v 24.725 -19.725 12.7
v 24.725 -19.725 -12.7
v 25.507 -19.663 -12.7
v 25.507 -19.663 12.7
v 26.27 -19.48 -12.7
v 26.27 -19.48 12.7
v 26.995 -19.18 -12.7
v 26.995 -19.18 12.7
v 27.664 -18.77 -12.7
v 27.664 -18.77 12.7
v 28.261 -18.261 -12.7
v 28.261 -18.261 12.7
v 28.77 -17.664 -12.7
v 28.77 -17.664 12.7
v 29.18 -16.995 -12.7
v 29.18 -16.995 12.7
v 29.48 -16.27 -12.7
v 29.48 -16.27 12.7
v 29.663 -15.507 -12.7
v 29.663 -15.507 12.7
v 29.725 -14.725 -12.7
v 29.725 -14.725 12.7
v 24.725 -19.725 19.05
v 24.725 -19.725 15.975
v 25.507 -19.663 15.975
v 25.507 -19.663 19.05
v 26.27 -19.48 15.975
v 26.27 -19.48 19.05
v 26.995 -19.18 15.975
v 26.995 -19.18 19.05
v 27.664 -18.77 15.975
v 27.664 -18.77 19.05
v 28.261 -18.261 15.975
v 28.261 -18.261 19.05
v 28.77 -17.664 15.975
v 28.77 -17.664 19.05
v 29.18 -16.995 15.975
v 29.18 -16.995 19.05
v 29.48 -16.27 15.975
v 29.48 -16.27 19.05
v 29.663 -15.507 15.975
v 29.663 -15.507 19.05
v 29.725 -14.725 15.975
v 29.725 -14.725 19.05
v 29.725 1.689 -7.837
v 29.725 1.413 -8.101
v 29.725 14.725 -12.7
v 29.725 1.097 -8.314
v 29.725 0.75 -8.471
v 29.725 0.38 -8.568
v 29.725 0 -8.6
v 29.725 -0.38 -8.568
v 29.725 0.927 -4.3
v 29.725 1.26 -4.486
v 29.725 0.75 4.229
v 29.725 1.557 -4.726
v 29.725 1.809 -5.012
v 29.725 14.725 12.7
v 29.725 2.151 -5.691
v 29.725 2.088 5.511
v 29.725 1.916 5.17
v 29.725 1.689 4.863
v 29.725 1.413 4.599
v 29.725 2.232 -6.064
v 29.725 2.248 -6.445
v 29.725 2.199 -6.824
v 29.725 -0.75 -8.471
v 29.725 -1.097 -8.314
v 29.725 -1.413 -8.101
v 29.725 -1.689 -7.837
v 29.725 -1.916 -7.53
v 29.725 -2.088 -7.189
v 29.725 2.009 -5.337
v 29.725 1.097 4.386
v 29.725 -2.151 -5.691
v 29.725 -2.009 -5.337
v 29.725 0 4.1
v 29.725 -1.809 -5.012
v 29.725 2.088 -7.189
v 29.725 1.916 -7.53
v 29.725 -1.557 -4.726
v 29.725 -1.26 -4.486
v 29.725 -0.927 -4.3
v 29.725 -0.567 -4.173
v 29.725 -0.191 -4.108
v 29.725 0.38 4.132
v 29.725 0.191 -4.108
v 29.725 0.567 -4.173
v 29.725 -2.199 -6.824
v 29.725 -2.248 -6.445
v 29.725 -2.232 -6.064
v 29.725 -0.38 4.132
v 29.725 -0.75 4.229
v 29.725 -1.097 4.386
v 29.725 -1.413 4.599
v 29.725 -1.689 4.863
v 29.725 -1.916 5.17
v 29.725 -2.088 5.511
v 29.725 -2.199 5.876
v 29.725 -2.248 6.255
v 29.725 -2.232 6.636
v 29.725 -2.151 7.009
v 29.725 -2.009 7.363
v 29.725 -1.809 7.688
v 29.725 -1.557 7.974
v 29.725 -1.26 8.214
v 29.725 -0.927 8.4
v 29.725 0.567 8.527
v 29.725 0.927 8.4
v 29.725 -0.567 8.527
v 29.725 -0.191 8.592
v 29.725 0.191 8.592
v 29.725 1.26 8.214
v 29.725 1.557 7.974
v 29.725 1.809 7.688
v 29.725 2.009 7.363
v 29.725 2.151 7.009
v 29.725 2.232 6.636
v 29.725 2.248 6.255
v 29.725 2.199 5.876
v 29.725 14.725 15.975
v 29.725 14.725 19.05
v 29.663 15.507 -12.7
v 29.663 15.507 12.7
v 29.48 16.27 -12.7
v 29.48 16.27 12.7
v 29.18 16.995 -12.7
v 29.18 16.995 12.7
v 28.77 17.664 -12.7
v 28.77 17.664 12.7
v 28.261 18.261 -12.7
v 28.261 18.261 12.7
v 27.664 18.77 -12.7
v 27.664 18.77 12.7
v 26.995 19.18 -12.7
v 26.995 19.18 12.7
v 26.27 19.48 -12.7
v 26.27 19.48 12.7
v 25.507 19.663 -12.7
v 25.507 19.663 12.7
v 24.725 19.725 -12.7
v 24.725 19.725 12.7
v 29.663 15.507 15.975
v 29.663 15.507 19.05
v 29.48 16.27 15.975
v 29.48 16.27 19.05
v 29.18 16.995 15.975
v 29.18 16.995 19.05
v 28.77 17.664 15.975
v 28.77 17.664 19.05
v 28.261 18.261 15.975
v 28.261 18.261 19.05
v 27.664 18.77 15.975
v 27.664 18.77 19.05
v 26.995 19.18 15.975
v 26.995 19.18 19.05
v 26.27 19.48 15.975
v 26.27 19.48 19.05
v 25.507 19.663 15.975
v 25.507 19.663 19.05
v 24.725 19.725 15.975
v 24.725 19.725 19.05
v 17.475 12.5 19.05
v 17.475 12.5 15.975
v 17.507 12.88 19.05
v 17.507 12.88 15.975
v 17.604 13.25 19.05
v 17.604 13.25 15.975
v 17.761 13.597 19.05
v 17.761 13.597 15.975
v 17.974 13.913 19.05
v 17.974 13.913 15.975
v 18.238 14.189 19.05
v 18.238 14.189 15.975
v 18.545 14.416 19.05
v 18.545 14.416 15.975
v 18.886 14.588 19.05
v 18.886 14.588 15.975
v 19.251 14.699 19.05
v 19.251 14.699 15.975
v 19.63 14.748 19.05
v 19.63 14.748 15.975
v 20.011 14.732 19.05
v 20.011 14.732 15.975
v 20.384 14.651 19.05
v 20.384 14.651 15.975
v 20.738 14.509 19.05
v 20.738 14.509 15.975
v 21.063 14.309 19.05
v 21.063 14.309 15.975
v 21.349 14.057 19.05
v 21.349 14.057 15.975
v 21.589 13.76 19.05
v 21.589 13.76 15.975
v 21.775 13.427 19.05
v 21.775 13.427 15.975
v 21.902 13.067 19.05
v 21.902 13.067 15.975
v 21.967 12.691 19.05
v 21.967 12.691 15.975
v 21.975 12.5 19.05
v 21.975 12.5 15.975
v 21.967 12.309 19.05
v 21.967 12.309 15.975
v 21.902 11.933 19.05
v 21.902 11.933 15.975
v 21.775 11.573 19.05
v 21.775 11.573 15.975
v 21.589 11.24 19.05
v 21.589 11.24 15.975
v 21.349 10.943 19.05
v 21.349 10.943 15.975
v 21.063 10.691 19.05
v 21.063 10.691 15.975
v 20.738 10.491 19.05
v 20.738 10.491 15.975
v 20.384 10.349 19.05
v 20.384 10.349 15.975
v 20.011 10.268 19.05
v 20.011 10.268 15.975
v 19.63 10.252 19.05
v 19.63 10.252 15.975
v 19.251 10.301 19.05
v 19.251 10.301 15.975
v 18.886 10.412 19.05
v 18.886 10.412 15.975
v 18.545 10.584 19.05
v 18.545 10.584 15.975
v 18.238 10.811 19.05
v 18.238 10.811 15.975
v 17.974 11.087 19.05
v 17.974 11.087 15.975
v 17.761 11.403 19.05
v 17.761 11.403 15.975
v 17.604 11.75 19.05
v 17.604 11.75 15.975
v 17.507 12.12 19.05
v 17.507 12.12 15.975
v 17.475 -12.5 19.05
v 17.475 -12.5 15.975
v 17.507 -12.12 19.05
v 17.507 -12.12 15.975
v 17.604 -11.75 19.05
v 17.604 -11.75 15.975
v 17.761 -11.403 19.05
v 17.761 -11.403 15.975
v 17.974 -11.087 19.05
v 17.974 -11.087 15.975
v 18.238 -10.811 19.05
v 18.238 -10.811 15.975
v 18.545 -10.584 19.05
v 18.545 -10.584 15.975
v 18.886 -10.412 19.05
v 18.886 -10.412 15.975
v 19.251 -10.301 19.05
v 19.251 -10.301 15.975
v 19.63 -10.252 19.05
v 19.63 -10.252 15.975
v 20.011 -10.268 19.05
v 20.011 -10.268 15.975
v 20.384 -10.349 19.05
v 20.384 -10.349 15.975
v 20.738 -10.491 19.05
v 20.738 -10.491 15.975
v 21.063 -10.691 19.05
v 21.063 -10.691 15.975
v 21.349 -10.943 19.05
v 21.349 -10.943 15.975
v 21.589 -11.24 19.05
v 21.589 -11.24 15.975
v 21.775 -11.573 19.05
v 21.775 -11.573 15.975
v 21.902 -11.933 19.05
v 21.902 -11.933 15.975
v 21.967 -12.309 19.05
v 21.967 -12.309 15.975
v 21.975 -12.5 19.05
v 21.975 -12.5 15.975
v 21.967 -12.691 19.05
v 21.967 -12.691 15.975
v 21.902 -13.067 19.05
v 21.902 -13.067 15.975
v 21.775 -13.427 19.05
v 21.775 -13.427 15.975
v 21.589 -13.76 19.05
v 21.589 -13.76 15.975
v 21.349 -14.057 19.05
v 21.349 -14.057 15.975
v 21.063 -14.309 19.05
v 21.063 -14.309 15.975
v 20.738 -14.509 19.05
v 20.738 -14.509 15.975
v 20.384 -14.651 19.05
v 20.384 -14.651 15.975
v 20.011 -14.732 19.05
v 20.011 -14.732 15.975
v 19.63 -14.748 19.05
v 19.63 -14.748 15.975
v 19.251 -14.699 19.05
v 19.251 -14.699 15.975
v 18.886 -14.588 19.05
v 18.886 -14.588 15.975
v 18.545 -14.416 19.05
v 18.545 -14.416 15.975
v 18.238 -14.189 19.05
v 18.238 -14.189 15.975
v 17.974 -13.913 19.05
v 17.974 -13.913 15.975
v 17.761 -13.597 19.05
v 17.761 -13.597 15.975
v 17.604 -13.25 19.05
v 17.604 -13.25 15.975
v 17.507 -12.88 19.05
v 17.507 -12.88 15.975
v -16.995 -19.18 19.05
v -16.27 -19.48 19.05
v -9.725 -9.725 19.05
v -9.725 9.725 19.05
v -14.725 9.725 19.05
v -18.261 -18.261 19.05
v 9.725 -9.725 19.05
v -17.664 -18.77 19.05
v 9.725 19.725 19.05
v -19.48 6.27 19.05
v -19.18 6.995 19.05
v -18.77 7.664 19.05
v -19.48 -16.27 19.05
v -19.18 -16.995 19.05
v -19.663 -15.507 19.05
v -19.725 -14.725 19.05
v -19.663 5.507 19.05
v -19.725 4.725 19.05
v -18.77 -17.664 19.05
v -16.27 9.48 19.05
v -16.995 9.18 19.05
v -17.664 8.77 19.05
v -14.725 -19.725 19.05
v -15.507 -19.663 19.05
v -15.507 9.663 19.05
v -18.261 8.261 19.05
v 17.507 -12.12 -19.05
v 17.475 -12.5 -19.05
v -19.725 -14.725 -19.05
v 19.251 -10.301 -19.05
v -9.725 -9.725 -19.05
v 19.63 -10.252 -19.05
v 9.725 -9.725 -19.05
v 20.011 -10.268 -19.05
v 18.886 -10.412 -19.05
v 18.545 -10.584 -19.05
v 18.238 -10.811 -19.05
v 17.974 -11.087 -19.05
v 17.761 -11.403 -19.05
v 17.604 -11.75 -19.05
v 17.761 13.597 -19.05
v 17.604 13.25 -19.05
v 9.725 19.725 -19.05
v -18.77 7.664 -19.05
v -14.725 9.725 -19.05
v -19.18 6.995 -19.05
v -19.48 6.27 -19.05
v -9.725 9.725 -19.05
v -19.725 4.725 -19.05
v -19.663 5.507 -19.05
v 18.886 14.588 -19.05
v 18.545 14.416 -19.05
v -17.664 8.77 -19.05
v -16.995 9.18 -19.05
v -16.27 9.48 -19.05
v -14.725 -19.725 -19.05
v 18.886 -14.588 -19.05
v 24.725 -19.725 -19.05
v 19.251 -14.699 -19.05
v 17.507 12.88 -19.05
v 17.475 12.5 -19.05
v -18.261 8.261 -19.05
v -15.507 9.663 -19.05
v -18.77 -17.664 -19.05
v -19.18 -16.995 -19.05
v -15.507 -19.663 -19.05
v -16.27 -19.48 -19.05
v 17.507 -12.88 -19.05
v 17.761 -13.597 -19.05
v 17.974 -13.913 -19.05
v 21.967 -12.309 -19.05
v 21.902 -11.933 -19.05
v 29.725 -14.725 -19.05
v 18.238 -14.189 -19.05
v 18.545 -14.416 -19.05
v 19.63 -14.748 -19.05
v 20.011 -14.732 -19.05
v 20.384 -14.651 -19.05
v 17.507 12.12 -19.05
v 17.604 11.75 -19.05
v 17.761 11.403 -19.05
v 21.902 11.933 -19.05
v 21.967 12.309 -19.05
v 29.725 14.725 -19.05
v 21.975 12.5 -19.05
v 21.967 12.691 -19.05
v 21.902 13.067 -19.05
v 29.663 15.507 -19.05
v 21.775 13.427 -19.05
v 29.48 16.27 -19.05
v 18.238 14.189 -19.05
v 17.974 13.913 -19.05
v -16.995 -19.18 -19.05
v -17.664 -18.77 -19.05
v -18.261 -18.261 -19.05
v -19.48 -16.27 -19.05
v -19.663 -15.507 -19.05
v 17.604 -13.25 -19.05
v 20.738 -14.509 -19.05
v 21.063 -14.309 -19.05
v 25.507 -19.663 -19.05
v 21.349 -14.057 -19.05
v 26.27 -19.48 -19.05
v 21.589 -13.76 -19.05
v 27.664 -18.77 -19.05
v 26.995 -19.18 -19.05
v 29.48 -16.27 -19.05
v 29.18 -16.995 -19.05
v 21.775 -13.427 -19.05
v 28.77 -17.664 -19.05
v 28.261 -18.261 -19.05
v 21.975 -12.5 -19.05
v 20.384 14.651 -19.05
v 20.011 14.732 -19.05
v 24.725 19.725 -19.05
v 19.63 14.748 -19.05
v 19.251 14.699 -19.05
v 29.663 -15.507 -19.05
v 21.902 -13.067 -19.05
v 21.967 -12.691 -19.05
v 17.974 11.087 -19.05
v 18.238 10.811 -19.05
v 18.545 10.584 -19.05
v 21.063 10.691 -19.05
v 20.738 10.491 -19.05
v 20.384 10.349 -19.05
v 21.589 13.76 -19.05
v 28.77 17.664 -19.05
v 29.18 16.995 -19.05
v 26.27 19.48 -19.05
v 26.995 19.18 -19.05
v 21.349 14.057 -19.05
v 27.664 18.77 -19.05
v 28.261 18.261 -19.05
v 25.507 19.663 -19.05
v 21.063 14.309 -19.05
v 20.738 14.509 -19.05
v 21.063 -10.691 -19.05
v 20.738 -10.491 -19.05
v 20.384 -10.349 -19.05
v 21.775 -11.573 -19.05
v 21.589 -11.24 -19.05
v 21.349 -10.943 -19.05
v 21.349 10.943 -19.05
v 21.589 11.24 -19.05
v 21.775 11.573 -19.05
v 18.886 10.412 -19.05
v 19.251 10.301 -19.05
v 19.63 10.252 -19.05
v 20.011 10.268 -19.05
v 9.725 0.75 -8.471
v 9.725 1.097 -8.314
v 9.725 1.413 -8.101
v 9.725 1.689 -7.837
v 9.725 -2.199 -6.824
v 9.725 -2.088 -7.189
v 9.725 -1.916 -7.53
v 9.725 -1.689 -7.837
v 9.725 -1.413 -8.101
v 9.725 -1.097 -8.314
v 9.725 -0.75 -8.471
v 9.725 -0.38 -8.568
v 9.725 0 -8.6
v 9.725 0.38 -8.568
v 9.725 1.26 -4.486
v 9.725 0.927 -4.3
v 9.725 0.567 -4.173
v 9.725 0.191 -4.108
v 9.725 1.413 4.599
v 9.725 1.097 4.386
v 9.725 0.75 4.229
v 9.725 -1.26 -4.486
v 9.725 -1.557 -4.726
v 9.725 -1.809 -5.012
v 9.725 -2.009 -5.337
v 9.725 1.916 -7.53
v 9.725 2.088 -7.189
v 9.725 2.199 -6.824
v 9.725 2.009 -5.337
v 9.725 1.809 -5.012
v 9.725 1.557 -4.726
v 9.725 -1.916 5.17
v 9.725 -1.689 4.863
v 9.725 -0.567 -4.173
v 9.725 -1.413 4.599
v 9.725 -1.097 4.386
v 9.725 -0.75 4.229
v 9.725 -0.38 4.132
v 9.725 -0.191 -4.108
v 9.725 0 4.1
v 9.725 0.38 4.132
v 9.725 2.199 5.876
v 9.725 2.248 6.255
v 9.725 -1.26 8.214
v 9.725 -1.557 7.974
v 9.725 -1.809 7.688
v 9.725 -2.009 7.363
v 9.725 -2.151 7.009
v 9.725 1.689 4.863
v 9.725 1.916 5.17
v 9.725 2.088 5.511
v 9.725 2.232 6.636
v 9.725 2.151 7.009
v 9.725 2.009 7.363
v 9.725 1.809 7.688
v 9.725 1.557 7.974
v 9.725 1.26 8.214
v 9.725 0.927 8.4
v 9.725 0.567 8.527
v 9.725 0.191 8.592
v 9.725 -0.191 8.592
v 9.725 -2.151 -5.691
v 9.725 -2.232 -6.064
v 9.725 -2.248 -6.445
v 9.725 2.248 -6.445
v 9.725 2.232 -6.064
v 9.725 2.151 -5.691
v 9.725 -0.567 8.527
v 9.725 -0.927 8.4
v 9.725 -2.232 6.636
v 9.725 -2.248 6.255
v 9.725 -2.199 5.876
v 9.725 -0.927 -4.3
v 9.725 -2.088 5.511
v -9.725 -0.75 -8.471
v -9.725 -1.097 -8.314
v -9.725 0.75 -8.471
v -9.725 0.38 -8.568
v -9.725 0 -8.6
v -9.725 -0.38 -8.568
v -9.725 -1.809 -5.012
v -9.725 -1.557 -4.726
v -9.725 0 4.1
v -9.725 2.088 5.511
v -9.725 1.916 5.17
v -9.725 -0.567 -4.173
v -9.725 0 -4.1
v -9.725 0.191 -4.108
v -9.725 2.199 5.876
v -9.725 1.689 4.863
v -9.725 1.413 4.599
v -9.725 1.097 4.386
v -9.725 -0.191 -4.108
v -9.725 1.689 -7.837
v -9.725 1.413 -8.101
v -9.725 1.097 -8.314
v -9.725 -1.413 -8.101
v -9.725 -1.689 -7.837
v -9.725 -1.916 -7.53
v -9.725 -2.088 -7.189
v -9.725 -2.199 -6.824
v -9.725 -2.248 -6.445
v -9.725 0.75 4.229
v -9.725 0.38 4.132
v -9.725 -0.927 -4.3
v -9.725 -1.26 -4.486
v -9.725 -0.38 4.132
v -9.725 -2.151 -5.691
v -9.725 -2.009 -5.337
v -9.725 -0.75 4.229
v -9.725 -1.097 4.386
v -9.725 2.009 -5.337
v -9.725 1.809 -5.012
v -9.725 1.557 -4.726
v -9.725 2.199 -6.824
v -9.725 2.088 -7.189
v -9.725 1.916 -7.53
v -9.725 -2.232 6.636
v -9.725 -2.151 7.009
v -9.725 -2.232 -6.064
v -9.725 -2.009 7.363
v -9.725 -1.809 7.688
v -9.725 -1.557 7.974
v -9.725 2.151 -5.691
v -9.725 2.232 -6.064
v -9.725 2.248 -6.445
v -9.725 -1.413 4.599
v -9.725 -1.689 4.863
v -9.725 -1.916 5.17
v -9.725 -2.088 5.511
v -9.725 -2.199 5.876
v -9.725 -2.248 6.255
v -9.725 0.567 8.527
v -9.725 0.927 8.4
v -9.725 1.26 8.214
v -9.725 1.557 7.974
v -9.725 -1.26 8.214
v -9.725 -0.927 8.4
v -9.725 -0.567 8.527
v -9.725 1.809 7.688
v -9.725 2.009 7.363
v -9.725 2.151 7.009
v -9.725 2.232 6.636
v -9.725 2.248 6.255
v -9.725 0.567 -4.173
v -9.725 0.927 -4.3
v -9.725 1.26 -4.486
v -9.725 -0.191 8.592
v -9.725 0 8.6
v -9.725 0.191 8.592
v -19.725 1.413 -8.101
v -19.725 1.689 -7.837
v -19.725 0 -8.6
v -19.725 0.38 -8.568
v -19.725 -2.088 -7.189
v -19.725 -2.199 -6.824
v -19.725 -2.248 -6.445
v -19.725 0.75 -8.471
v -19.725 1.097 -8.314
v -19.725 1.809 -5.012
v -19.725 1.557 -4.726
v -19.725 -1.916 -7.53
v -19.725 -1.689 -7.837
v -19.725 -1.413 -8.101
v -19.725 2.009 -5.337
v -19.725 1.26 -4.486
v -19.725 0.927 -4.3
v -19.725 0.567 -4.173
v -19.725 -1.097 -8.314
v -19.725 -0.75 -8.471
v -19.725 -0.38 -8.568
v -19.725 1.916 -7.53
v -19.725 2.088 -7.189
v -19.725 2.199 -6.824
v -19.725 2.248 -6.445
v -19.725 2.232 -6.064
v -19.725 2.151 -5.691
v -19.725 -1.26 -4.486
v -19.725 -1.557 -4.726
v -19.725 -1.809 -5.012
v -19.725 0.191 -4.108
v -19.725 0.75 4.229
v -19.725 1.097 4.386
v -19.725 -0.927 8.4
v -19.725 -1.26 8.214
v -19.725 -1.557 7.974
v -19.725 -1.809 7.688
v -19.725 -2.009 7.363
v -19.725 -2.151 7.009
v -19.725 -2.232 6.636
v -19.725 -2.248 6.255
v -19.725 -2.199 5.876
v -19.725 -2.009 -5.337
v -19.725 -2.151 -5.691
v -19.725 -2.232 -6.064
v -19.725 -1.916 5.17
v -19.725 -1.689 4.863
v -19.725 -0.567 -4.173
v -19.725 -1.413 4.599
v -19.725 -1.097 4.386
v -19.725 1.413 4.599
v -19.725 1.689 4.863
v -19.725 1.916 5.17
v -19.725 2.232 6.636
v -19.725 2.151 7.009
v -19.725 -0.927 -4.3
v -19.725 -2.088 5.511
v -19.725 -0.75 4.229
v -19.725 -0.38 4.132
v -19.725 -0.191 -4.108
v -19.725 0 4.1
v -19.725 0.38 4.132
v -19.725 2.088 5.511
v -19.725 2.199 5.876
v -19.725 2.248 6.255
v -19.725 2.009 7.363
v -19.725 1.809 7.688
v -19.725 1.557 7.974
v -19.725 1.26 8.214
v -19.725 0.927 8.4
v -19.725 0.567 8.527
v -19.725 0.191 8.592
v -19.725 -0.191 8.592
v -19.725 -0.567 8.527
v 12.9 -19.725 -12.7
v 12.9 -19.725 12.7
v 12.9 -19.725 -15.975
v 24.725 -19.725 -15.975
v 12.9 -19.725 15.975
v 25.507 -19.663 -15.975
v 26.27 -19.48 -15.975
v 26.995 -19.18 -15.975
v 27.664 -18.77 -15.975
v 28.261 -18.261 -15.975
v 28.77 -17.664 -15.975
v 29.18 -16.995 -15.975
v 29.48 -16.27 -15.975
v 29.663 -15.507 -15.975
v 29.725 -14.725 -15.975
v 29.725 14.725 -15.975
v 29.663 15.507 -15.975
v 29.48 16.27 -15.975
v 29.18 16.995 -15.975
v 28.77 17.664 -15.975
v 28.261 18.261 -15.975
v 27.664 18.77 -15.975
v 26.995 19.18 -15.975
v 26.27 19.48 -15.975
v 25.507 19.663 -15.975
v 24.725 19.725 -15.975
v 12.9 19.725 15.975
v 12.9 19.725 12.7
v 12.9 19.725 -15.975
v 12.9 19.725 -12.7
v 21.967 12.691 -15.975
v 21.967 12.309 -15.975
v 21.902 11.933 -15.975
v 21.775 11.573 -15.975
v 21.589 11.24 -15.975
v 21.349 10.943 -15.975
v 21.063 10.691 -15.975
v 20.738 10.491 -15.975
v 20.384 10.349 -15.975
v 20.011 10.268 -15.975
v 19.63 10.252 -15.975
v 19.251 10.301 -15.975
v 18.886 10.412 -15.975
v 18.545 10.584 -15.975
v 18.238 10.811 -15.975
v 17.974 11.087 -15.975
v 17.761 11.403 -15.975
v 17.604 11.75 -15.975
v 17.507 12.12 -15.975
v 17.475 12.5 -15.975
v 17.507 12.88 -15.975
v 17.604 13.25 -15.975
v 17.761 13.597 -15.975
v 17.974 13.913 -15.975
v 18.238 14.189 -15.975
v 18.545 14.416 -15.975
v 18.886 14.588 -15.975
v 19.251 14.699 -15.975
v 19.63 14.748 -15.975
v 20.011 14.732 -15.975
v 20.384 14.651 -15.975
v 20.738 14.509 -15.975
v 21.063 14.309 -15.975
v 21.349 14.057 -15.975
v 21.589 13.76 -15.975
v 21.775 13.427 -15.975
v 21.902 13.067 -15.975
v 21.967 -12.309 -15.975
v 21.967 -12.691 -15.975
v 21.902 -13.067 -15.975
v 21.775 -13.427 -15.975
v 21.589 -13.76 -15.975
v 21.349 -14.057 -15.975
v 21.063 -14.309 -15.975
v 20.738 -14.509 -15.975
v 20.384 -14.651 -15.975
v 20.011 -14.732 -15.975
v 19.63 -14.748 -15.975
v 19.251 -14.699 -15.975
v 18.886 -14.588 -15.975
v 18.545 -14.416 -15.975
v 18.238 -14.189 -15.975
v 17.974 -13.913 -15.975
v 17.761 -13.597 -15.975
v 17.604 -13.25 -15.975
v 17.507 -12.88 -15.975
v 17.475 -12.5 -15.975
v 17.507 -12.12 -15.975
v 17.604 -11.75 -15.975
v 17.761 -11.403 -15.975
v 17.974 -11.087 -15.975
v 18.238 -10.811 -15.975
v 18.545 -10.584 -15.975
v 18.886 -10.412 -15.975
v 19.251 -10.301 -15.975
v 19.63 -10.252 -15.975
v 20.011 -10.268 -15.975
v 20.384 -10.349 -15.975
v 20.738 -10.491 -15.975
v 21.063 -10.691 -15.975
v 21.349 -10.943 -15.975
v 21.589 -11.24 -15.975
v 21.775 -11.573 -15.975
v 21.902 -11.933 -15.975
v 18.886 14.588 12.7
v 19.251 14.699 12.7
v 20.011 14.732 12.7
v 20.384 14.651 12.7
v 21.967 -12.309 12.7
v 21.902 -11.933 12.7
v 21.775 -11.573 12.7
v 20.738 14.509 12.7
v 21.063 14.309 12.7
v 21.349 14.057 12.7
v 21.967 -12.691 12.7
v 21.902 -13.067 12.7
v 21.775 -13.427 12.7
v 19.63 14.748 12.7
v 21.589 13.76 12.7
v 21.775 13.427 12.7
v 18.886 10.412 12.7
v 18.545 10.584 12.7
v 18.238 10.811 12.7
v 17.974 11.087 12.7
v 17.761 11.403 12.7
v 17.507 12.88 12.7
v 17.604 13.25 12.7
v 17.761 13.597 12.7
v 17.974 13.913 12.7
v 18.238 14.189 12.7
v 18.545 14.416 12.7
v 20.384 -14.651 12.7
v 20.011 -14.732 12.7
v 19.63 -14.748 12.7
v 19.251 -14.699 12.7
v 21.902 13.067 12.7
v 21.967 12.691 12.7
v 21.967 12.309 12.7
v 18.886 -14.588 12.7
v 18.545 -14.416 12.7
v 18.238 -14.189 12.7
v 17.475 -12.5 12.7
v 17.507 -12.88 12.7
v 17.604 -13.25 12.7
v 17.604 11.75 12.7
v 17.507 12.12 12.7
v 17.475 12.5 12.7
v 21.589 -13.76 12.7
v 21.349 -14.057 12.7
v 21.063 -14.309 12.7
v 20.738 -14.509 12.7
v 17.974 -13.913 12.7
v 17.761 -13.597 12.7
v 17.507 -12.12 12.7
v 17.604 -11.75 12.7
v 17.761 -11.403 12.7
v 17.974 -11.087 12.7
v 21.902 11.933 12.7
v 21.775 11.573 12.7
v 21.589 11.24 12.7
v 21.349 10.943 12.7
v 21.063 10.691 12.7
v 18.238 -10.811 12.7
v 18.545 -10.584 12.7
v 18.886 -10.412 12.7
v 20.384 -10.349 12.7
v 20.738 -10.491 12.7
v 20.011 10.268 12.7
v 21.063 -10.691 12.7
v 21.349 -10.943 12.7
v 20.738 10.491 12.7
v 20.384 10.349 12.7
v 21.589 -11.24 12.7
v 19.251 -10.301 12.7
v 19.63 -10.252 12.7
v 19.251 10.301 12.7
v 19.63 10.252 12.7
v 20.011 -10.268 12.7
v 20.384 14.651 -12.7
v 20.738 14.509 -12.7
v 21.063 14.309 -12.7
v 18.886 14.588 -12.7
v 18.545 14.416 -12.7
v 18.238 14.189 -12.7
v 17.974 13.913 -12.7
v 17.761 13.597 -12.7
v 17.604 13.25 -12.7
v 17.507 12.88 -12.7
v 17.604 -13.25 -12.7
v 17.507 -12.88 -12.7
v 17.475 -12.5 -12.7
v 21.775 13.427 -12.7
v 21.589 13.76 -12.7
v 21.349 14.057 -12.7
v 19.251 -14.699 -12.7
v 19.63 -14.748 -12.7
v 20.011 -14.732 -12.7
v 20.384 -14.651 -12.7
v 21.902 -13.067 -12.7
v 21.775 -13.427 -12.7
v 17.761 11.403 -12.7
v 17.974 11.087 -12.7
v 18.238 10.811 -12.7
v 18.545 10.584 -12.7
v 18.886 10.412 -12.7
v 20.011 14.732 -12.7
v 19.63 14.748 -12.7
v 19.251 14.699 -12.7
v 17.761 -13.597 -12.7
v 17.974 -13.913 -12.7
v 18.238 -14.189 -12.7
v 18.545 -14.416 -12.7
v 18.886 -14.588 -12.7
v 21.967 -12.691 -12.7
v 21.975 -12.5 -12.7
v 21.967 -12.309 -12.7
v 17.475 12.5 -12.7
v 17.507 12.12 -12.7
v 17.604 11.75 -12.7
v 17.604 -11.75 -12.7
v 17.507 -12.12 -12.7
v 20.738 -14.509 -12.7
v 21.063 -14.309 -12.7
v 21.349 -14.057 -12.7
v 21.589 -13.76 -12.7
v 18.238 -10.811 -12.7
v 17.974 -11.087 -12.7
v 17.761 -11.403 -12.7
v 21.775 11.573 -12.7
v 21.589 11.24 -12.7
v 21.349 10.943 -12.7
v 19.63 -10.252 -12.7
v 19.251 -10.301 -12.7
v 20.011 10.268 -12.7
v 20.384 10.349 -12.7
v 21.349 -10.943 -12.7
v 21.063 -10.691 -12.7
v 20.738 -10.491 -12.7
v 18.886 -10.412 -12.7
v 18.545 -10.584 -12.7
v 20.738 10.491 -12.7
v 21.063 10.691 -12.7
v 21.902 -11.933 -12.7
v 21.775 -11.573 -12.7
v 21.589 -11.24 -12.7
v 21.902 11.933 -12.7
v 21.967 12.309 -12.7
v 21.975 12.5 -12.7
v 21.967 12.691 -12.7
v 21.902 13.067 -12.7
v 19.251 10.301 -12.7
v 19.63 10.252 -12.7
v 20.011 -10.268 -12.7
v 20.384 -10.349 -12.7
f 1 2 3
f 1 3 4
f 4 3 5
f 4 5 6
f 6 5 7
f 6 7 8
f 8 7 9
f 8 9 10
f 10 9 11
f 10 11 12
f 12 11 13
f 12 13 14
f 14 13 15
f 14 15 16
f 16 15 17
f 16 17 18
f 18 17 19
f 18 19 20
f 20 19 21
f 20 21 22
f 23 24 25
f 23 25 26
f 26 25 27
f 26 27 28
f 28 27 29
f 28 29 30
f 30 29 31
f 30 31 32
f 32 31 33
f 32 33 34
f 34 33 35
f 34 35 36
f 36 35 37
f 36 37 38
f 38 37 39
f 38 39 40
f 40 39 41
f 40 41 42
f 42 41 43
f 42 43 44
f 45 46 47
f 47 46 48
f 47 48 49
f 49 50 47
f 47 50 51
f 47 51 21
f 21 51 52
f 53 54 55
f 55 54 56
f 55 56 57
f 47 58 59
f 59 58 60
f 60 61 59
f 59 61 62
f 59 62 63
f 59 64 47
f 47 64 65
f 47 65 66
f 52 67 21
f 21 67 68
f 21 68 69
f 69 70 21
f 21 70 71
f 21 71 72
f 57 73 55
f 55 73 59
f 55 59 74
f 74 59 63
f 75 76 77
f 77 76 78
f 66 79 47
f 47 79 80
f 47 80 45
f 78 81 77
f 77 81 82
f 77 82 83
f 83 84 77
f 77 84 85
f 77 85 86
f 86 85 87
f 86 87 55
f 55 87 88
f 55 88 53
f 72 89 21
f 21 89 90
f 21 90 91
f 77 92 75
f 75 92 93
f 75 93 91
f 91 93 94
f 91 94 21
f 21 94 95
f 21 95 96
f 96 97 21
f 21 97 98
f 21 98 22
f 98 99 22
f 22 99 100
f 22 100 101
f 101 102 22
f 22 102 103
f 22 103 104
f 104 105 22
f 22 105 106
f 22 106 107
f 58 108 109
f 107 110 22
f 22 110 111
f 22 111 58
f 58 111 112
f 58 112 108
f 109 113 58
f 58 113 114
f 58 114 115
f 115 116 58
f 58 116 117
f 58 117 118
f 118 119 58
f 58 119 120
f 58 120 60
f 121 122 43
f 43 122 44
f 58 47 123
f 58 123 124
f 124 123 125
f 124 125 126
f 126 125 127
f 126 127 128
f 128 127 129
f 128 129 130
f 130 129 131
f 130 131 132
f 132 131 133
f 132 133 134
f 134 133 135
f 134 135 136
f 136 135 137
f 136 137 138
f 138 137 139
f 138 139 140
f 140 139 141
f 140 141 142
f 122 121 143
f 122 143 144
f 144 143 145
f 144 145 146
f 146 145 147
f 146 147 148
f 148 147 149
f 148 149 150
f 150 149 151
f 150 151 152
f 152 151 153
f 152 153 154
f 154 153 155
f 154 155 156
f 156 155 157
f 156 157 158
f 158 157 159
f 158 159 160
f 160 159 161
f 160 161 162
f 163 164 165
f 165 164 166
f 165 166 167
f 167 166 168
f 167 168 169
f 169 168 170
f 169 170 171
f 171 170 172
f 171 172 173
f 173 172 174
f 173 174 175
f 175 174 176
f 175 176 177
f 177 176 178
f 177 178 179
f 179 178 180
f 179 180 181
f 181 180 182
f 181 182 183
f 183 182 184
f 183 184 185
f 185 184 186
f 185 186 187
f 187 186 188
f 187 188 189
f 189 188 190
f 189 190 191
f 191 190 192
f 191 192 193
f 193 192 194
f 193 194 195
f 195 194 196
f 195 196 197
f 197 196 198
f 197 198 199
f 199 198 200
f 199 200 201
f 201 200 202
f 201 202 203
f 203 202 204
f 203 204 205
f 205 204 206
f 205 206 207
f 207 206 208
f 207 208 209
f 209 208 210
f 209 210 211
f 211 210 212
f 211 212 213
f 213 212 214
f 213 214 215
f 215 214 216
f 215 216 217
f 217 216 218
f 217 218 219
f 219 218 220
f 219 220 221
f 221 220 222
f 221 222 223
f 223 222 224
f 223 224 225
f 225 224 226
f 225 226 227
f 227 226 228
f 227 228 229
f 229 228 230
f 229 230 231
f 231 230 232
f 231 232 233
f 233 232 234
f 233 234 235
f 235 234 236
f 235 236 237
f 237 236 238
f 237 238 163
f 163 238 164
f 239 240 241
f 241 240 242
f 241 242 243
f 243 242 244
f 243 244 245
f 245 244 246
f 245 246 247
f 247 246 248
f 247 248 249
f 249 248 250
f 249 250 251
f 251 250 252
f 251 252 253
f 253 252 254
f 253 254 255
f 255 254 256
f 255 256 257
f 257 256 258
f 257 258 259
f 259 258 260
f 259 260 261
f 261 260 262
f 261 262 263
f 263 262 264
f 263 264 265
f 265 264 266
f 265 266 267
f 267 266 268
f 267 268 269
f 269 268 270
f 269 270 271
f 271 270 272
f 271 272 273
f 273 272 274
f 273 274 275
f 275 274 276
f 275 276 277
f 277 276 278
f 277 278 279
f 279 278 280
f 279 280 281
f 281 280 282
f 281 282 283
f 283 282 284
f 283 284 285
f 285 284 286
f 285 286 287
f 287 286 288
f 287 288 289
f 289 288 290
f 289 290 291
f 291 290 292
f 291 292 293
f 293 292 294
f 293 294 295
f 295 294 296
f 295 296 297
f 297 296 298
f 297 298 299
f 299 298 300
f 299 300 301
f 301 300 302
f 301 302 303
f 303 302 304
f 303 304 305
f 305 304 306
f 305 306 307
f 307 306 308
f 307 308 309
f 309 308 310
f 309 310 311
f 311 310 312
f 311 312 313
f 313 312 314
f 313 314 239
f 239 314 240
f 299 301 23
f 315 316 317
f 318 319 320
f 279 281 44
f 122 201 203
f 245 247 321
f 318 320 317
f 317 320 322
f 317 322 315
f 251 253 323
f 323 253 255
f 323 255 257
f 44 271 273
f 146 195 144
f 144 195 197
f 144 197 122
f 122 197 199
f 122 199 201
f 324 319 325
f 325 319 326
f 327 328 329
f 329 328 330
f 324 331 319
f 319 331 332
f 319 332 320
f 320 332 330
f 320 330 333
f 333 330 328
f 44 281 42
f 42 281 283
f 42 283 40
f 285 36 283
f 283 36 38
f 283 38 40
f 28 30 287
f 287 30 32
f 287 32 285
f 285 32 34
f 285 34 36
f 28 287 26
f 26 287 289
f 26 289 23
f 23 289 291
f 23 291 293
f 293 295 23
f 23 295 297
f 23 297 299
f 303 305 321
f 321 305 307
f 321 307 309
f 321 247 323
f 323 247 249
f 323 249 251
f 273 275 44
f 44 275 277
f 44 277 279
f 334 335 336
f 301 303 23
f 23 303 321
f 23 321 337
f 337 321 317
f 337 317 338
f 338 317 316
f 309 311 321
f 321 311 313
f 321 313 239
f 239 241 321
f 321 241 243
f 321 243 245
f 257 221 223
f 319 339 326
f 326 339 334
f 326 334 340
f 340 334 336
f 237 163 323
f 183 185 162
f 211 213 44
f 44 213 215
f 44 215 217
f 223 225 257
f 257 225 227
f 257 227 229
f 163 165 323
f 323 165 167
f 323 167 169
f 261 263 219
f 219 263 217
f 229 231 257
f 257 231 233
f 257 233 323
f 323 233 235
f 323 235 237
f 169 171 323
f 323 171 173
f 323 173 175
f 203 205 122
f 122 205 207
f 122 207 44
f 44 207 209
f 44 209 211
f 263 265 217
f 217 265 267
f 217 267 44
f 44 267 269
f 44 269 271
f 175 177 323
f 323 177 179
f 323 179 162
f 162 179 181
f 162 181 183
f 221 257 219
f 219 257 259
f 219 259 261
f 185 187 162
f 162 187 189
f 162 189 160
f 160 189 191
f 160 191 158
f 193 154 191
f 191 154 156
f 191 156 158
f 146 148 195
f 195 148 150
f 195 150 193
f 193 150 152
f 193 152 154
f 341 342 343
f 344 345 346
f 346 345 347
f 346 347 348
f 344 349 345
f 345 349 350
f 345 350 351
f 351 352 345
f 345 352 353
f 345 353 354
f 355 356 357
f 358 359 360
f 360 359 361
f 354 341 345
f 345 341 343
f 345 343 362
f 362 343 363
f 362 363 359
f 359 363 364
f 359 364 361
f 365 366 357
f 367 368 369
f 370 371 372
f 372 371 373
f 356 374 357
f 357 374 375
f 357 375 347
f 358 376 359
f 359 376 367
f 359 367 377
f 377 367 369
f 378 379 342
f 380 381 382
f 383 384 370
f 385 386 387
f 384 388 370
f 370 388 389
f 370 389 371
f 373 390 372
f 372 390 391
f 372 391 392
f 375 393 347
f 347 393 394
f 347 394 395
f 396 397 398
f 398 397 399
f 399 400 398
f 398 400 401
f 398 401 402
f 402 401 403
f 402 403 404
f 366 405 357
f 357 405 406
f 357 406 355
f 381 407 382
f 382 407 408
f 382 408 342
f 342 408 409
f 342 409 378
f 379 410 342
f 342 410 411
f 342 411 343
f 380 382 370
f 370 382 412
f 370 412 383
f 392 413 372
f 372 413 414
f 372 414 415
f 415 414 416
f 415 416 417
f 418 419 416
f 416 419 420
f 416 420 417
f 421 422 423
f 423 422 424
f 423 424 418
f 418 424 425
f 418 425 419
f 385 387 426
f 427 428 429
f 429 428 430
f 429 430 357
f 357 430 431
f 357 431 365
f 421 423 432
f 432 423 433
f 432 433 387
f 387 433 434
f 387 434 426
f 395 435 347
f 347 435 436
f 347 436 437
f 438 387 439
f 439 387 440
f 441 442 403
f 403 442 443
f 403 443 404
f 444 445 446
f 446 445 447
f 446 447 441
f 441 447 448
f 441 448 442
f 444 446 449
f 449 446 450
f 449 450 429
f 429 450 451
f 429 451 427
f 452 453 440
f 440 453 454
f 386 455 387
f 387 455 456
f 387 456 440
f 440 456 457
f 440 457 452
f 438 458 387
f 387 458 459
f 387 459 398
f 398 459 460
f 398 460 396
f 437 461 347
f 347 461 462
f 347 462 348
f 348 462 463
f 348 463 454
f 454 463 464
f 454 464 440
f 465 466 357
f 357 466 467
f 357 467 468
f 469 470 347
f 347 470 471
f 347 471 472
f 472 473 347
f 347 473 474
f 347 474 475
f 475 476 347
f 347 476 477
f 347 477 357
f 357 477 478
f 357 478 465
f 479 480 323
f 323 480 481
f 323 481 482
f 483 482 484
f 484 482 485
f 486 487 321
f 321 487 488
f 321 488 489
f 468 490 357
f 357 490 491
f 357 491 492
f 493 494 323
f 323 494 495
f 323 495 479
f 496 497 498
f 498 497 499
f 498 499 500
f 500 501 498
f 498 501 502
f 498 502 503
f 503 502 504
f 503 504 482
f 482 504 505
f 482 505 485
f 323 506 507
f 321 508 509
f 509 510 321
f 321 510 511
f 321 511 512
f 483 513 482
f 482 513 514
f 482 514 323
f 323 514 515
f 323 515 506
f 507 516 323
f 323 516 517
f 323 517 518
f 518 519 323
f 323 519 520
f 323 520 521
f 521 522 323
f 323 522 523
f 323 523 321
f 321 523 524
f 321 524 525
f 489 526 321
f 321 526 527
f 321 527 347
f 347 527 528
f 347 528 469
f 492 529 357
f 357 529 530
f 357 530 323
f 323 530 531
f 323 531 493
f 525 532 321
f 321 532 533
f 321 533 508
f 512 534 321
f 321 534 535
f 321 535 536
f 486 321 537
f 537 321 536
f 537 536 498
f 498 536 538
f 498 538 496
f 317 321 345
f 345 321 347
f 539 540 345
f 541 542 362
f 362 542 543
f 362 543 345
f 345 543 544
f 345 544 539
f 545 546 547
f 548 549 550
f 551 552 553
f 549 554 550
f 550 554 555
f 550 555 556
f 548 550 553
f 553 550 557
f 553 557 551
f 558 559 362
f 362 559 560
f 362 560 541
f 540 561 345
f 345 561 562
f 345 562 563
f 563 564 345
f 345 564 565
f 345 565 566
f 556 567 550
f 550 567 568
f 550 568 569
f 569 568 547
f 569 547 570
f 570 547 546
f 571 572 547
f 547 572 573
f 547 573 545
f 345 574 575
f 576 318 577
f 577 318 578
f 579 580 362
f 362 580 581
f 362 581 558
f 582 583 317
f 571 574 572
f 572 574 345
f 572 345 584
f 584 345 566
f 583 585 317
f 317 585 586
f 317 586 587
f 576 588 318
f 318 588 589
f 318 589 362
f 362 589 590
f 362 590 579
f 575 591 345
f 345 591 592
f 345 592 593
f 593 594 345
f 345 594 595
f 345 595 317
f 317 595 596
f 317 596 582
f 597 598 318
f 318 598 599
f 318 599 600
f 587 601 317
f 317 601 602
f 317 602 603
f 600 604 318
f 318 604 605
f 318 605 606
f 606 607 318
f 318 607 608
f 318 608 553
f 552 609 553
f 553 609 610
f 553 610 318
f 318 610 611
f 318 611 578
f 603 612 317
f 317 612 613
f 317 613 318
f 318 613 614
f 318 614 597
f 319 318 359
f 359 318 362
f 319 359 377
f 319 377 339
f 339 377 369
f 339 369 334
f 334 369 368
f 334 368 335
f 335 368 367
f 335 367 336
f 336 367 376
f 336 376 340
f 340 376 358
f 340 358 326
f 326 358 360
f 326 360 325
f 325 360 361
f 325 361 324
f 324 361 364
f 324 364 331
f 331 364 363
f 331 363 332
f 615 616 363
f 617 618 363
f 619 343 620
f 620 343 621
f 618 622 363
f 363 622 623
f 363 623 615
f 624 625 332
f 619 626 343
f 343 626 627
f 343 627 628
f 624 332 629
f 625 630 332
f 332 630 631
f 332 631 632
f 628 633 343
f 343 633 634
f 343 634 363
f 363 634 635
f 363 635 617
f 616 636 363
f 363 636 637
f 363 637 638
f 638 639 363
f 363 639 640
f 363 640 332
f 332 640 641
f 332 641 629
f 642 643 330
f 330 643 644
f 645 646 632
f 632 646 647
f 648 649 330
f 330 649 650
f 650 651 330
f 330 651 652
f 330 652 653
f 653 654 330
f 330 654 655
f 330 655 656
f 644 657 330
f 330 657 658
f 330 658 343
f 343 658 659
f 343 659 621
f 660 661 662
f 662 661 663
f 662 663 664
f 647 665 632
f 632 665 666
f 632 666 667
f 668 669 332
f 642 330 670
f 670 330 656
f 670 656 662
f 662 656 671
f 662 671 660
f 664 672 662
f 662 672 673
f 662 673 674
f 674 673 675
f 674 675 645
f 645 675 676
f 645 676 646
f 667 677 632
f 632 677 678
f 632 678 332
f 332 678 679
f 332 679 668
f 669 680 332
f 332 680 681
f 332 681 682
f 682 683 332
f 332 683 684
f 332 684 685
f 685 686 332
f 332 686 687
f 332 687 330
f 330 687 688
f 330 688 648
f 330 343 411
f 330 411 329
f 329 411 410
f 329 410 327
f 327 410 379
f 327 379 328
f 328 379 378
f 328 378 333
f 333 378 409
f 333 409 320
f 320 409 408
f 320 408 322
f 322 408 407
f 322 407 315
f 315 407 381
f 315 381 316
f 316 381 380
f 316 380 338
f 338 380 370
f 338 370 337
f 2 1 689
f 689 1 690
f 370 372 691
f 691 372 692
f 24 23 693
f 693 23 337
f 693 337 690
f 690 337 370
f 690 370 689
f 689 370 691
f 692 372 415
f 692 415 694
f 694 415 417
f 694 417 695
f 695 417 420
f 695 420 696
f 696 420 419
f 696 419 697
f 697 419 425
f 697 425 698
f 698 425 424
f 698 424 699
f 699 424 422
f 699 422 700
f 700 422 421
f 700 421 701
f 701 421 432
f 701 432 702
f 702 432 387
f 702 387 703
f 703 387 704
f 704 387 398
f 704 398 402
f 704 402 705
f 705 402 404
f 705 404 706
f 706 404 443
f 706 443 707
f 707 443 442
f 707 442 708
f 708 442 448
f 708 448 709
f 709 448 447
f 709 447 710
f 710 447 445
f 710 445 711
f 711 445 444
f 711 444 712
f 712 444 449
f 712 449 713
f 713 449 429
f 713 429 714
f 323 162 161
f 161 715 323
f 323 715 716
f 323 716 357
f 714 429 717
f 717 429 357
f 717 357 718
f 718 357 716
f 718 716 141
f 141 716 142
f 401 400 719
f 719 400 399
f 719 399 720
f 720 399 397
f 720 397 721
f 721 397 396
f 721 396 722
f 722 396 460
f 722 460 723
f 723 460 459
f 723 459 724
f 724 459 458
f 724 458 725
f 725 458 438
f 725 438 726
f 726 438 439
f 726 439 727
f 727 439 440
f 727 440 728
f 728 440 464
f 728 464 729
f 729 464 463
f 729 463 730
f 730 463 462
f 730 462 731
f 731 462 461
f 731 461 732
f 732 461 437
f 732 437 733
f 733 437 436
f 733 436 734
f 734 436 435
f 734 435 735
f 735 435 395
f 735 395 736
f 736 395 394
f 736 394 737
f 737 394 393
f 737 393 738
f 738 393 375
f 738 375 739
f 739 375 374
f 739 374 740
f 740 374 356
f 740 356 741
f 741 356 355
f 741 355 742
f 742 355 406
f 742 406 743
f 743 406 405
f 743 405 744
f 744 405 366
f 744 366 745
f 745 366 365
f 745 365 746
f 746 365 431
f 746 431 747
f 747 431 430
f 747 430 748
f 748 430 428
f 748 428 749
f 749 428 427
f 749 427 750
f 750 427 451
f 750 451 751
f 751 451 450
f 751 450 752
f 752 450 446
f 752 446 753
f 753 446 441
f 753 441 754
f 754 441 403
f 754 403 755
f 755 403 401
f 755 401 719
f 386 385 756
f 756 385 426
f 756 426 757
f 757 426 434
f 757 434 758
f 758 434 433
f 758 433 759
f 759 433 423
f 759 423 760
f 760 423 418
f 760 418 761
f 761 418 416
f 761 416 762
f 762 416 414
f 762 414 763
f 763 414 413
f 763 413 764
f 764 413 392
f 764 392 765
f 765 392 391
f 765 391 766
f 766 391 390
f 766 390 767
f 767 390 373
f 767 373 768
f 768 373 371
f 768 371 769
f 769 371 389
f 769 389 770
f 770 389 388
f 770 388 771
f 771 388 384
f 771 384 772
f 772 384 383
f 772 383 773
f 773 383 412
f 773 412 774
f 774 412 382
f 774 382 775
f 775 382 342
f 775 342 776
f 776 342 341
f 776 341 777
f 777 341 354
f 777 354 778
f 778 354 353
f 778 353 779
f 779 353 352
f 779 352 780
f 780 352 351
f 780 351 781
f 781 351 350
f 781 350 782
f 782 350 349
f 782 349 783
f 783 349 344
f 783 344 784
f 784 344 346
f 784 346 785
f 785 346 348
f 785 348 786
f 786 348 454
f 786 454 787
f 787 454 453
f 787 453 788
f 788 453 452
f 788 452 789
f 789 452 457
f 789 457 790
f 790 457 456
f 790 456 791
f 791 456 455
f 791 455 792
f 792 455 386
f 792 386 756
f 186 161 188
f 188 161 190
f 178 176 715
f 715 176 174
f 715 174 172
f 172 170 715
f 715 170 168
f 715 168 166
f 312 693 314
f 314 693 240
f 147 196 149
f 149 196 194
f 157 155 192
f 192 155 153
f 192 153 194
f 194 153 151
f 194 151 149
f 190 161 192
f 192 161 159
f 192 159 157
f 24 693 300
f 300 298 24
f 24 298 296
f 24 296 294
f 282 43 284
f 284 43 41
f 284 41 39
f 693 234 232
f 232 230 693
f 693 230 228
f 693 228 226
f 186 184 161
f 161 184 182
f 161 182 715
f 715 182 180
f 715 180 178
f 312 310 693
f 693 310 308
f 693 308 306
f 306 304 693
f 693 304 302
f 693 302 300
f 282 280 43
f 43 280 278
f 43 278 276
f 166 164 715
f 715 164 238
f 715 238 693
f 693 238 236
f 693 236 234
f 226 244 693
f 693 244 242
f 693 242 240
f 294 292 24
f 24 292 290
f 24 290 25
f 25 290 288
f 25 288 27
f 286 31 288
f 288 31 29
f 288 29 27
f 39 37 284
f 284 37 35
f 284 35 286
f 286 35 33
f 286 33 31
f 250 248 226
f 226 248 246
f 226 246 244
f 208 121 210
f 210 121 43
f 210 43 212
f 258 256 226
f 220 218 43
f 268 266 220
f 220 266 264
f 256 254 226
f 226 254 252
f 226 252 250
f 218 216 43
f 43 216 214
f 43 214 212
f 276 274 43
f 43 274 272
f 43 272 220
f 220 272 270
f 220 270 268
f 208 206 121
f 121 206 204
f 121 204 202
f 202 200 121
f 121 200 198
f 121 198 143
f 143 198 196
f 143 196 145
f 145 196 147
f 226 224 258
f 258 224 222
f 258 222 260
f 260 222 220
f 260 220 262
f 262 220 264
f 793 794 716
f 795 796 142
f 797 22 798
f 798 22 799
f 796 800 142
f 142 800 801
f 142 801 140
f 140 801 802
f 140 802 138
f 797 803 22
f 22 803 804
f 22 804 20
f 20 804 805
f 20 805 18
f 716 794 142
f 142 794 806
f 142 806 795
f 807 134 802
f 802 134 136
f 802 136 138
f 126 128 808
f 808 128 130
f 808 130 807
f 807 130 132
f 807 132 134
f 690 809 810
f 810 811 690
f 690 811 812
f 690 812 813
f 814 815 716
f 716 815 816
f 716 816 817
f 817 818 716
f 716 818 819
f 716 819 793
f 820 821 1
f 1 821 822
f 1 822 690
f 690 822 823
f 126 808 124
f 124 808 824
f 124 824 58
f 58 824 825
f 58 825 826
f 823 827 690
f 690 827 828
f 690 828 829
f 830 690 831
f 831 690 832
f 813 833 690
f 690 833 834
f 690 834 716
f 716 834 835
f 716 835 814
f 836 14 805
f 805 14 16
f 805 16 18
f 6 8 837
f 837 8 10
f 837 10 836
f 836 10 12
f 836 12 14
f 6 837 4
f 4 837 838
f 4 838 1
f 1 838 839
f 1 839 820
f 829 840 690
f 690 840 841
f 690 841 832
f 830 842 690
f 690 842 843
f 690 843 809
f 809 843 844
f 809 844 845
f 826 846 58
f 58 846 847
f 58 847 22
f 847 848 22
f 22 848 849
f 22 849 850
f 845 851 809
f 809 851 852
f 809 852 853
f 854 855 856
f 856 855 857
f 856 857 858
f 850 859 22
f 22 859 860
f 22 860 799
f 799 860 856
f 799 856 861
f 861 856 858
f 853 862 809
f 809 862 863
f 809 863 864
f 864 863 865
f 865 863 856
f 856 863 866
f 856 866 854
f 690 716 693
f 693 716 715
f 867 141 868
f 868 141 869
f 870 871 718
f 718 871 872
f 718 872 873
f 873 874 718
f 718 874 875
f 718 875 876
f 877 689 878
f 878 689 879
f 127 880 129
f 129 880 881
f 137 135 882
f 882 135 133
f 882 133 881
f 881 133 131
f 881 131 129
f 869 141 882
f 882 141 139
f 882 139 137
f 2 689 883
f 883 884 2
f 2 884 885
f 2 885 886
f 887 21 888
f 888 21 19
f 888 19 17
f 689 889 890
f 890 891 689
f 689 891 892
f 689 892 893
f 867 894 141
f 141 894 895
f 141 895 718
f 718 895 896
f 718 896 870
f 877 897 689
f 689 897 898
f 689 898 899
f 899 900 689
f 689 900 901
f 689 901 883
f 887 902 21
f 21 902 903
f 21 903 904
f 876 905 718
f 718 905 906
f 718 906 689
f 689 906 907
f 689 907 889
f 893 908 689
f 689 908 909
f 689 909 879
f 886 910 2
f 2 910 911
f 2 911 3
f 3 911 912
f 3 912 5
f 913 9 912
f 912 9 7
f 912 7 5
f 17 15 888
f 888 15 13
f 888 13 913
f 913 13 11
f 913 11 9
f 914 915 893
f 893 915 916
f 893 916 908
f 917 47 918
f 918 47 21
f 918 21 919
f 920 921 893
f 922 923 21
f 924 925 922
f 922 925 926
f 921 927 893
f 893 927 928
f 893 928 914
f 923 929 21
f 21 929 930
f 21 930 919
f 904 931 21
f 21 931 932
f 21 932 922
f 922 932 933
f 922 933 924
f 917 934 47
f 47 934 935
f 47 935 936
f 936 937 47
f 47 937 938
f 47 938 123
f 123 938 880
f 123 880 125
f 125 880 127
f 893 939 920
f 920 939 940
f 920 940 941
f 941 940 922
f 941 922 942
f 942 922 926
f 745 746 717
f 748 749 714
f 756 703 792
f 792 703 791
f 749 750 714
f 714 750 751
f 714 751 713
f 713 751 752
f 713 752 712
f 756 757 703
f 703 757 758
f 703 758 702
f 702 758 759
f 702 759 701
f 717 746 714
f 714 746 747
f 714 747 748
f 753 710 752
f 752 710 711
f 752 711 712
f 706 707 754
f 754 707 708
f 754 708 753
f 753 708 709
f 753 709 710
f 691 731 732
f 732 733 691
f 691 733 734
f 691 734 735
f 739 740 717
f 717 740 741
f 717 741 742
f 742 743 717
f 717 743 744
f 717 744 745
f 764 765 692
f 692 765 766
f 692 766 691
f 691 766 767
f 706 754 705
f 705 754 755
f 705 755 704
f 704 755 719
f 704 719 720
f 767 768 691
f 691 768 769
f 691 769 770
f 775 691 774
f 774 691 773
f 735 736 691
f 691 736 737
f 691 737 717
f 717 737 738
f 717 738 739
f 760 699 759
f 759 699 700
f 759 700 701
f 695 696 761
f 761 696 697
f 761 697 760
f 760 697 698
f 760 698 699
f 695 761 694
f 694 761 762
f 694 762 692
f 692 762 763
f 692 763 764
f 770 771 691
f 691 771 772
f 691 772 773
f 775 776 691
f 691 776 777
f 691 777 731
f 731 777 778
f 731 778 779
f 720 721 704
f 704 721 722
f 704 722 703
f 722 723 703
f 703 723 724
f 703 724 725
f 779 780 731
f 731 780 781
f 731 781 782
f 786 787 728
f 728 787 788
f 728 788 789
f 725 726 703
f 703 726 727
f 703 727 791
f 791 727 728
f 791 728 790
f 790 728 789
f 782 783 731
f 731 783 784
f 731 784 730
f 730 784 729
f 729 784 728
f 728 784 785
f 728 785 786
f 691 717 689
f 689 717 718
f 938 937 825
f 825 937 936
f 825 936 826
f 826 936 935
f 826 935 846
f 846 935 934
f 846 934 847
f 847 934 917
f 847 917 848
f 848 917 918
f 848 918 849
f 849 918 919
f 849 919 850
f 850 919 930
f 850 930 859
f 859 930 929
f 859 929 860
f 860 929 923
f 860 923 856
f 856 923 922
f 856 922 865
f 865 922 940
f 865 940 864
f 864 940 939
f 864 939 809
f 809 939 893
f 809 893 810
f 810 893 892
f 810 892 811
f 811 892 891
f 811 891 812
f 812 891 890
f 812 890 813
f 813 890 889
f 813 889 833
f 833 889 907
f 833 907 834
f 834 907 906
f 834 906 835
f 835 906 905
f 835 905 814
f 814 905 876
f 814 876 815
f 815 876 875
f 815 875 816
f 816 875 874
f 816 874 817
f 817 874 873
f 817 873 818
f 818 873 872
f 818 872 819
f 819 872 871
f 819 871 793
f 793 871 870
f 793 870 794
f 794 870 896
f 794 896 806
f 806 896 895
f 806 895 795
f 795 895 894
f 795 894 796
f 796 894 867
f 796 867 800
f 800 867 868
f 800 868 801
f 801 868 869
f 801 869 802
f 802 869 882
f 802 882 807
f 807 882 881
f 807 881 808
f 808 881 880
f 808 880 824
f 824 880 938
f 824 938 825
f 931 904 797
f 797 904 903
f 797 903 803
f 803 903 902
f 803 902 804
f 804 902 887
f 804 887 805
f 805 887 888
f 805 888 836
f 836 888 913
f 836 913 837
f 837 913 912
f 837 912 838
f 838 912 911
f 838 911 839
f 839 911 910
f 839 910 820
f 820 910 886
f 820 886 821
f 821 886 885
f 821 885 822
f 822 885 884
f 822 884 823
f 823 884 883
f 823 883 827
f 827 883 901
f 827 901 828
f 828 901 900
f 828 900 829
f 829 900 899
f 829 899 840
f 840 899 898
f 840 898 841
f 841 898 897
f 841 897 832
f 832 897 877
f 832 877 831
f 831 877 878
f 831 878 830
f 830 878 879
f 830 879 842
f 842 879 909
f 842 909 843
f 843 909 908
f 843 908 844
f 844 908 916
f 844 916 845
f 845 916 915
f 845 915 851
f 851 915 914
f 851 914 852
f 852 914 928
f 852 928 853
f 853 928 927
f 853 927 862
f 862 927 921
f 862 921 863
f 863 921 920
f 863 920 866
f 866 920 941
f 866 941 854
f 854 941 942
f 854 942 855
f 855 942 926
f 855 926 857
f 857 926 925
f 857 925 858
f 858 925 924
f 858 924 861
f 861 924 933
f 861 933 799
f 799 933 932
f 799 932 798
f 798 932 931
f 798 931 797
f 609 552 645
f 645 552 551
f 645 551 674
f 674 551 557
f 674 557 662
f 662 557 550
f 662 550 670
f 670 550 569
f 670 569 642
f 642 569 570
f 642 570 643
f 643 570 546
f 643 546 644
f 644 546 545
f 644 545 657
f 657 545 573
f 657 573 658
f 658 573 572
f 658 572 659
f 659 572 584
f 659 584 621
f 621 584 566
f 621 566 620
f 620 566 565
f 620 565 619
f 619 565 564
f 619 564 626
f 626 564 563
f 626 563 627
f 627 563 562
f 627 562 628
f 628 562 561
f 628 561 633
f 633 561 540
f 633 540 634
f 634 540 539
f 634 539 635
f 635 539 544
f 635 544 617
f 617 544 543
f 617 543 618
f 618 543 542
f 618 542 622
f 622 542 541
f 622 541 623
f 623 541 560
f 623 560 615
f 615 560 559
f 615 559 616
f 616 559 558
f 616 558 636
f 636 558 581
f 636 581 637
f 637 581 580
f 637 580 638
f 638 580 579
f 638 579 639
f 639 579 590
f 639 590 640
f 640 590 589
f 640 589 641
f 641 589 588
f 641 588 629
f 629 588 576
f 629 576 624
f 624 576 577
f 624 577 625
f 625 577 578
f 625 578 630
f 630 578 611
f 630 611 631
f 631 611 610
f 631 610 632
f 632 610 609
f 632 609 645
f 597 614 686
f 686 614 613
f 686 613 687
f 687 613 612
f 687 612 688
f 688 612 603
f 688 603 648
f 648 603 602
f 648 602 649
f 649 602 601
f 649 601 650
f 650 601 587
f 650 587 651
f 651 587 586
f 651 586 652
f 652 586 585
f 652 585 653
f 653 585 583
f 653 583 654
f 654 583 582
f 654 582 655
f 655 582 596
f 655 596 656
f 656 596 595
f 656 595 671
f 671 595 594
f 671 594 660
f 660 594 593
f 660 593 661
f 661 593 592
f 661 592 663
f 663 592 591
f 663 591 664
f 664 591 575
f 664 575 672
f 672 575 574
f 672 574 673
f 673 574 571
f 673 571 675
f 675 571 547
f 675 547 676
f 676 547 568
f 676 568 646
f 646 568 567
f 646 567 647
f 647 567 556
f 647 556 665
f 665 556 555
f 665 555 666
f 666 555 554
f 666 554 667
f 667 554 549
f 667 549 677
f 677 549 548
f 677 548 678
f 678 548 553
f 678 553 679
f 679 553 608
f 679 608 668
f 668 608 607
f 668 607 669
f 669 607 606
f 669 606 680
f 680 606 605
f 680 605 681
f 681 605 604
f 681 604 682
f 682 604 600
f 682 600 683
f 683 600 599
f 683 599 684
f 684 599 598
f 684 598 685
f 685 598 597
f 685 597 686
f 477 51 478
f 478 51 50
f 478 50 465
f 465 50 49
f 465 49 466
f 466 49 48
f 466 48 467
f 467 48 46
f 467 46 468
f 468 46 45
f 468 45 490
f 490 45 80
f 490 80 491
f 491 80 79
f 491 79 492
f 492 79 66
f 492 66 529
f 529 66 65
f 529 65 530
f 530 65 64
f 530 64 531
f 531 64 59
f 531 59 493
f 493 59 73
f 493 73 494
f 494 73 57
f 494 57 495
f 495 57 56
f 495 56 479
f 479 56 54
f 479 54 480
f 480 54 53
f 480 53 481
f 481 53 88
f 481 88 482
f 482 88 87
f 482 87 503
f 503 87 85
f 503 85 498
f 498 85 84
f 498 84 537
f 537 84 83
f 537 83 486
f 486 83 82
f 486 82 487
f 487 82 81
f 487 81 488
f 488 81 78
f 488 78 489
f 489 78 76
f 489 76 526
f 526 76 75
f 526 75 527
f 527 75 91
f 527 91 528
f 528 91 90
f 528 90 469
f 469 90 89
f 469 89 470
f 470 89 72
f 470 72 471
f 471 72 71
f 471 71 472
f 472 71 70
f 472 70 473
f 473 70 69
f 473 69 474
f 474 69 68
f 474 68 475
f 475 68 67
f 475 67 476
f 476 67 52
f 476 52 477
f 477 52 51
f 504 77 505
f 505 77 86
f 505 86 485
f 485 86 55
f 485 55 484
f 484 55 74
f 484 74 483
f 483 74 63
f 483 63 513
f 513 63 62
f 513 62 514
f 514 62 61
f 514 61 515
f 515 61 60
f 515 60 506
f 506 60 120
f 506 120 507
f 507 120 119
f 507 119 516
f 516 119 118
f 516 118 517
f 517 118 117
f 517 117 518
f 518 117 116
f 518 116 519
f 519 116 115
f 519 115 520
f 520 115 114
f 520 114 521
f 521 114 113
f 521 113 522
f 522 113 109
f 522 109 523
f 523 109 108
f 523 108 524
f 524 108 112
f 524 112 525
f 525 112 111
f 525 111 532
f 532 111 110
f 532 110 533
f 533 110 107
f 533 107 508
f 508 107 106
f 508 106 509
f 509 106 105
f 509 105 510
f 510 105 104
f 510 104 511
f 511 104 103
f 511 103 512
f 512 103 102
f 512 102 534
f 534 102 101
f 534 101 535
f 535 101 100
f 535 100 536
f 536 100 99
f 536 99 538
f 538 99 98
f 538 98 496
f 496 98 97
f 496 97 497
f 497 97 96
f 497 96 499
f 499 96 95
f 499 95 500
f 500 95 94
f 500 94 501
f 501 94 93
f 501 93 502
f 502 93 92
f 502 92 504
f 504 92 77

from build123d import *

# Parameters (mm, degrees)
SKETCH1_R               = 2.25
BOSS_EXTRUDE1_DEPTH     = 19.05
SKETCH2_W               = 16.825
SKETCH2_H               = 3.275
CUT_EXTRUDE1_DEPTH      = 20.725
CUT_EXTRUDE1_DEPTH_BACK = 20.725
SKETCH4_R               = 2.25
CUT_EXTRUDE2_DEPTH      = 30.725
CUT_EXTRUDE2_DEPTH_BACK = 20.725


with BuildPart() as part:
    # Sketch1 → Boss-Extrude1 (new body, symmetric)
    with BuildSketch(Plane.XY):
        with BuildLine():
            Line((-9.725, 9.725), (-14.725, 9.725))
            ThreePointArc((-14.725, 9.725), (-18.260533906, 8.260533906), (-19.725, 4.725))
            Line((-19.725, 4.725), (-19.725, -14.725))
            ThreePointArc((-19.725, -14.725), (-18.260533906, -18.260533906), (-14.725, -19.725))
            Line((-14.725, -19.725), (24.725, -19.725))
            ThreePointArc((24.725, -19.725), (28.260533906, -18.260533906), (29.725, -14.725))
            Line((29.725, -14.725), (29.725, 14.725))
            ThreePointArc((29.725, 14.725), (28.260533906, 18.260533906), (24.725, 19.725))
            Line((24.725, 19.725), (9.725, 19.725))
            Line((9.725, 19.725), (9.725, 9.725))
            Line((9.725, 9.725), (9.725, -9.725))
            Line((9.725, -9.725), (-9.725, -9.725))
            Line((-9.725, -9.725), (-9.725, 9.725))
        make_face()
        with Locations((19.725, 12.5)):
            Circle(SKETCH1_R, mode=Mode.SUBTRACT)
        with Locations((19.725, -12.5)):
            Circle(SKETCH1_R, mode=Mode.SUBTRACT)
    extrude(amount=BOSS_EXTRUDE1_DEPTH, both=True)

    # Sketch2 → Cut-Extrude1 (cut, two sides)
    with BuildSketch(Plane(origin=(0, 0, 0), x_dir=(1, 0, 0), z_dir=(0, 1, 0))) as cut_extrude1_sk:
        with Locations((21.3125, 14.3375)):
            Rectangle(SKETCH2_W, SKETCH2_H)
        with Locations((21.3125, -14.3375)):
            Rectangle(SKETCH2_W, SKETCH2_H)
    extrude(amount=CUT_EXTRUDE1_DEPTH, mode=Mode.SUBTRACT)
    extrude(cut_extrude1_sk.sketch, amount=-CUT_EXTRUDE1_DEPTH_BACK, mode=Mode.SUBTRACT)

    # Sketch4 → Cut-Extrude2 (cut, two sides)
    with BuildSketch(Plane(origin=(0, 0, 0), x_dir=(0, 0, -1), z_dir=(1, 0, 0))) as cut_extrude2_sk:
        with Locations((-6.35, 0)):
            Circle(SKETCH4_R)
        with Locations((6.35, 0)):
            Circle(SKETCH4_R)
    extrude(amount=CUT_EXTRUDE2_DEPTH, mode=Mode.SUBTRACT)
    extrude(cut_extrude2_sk.sketch, amount=-CUT_EXTRUDE2_DEPTH_BACK, mode=Mode.SUBTRACT)


solid = part.part
